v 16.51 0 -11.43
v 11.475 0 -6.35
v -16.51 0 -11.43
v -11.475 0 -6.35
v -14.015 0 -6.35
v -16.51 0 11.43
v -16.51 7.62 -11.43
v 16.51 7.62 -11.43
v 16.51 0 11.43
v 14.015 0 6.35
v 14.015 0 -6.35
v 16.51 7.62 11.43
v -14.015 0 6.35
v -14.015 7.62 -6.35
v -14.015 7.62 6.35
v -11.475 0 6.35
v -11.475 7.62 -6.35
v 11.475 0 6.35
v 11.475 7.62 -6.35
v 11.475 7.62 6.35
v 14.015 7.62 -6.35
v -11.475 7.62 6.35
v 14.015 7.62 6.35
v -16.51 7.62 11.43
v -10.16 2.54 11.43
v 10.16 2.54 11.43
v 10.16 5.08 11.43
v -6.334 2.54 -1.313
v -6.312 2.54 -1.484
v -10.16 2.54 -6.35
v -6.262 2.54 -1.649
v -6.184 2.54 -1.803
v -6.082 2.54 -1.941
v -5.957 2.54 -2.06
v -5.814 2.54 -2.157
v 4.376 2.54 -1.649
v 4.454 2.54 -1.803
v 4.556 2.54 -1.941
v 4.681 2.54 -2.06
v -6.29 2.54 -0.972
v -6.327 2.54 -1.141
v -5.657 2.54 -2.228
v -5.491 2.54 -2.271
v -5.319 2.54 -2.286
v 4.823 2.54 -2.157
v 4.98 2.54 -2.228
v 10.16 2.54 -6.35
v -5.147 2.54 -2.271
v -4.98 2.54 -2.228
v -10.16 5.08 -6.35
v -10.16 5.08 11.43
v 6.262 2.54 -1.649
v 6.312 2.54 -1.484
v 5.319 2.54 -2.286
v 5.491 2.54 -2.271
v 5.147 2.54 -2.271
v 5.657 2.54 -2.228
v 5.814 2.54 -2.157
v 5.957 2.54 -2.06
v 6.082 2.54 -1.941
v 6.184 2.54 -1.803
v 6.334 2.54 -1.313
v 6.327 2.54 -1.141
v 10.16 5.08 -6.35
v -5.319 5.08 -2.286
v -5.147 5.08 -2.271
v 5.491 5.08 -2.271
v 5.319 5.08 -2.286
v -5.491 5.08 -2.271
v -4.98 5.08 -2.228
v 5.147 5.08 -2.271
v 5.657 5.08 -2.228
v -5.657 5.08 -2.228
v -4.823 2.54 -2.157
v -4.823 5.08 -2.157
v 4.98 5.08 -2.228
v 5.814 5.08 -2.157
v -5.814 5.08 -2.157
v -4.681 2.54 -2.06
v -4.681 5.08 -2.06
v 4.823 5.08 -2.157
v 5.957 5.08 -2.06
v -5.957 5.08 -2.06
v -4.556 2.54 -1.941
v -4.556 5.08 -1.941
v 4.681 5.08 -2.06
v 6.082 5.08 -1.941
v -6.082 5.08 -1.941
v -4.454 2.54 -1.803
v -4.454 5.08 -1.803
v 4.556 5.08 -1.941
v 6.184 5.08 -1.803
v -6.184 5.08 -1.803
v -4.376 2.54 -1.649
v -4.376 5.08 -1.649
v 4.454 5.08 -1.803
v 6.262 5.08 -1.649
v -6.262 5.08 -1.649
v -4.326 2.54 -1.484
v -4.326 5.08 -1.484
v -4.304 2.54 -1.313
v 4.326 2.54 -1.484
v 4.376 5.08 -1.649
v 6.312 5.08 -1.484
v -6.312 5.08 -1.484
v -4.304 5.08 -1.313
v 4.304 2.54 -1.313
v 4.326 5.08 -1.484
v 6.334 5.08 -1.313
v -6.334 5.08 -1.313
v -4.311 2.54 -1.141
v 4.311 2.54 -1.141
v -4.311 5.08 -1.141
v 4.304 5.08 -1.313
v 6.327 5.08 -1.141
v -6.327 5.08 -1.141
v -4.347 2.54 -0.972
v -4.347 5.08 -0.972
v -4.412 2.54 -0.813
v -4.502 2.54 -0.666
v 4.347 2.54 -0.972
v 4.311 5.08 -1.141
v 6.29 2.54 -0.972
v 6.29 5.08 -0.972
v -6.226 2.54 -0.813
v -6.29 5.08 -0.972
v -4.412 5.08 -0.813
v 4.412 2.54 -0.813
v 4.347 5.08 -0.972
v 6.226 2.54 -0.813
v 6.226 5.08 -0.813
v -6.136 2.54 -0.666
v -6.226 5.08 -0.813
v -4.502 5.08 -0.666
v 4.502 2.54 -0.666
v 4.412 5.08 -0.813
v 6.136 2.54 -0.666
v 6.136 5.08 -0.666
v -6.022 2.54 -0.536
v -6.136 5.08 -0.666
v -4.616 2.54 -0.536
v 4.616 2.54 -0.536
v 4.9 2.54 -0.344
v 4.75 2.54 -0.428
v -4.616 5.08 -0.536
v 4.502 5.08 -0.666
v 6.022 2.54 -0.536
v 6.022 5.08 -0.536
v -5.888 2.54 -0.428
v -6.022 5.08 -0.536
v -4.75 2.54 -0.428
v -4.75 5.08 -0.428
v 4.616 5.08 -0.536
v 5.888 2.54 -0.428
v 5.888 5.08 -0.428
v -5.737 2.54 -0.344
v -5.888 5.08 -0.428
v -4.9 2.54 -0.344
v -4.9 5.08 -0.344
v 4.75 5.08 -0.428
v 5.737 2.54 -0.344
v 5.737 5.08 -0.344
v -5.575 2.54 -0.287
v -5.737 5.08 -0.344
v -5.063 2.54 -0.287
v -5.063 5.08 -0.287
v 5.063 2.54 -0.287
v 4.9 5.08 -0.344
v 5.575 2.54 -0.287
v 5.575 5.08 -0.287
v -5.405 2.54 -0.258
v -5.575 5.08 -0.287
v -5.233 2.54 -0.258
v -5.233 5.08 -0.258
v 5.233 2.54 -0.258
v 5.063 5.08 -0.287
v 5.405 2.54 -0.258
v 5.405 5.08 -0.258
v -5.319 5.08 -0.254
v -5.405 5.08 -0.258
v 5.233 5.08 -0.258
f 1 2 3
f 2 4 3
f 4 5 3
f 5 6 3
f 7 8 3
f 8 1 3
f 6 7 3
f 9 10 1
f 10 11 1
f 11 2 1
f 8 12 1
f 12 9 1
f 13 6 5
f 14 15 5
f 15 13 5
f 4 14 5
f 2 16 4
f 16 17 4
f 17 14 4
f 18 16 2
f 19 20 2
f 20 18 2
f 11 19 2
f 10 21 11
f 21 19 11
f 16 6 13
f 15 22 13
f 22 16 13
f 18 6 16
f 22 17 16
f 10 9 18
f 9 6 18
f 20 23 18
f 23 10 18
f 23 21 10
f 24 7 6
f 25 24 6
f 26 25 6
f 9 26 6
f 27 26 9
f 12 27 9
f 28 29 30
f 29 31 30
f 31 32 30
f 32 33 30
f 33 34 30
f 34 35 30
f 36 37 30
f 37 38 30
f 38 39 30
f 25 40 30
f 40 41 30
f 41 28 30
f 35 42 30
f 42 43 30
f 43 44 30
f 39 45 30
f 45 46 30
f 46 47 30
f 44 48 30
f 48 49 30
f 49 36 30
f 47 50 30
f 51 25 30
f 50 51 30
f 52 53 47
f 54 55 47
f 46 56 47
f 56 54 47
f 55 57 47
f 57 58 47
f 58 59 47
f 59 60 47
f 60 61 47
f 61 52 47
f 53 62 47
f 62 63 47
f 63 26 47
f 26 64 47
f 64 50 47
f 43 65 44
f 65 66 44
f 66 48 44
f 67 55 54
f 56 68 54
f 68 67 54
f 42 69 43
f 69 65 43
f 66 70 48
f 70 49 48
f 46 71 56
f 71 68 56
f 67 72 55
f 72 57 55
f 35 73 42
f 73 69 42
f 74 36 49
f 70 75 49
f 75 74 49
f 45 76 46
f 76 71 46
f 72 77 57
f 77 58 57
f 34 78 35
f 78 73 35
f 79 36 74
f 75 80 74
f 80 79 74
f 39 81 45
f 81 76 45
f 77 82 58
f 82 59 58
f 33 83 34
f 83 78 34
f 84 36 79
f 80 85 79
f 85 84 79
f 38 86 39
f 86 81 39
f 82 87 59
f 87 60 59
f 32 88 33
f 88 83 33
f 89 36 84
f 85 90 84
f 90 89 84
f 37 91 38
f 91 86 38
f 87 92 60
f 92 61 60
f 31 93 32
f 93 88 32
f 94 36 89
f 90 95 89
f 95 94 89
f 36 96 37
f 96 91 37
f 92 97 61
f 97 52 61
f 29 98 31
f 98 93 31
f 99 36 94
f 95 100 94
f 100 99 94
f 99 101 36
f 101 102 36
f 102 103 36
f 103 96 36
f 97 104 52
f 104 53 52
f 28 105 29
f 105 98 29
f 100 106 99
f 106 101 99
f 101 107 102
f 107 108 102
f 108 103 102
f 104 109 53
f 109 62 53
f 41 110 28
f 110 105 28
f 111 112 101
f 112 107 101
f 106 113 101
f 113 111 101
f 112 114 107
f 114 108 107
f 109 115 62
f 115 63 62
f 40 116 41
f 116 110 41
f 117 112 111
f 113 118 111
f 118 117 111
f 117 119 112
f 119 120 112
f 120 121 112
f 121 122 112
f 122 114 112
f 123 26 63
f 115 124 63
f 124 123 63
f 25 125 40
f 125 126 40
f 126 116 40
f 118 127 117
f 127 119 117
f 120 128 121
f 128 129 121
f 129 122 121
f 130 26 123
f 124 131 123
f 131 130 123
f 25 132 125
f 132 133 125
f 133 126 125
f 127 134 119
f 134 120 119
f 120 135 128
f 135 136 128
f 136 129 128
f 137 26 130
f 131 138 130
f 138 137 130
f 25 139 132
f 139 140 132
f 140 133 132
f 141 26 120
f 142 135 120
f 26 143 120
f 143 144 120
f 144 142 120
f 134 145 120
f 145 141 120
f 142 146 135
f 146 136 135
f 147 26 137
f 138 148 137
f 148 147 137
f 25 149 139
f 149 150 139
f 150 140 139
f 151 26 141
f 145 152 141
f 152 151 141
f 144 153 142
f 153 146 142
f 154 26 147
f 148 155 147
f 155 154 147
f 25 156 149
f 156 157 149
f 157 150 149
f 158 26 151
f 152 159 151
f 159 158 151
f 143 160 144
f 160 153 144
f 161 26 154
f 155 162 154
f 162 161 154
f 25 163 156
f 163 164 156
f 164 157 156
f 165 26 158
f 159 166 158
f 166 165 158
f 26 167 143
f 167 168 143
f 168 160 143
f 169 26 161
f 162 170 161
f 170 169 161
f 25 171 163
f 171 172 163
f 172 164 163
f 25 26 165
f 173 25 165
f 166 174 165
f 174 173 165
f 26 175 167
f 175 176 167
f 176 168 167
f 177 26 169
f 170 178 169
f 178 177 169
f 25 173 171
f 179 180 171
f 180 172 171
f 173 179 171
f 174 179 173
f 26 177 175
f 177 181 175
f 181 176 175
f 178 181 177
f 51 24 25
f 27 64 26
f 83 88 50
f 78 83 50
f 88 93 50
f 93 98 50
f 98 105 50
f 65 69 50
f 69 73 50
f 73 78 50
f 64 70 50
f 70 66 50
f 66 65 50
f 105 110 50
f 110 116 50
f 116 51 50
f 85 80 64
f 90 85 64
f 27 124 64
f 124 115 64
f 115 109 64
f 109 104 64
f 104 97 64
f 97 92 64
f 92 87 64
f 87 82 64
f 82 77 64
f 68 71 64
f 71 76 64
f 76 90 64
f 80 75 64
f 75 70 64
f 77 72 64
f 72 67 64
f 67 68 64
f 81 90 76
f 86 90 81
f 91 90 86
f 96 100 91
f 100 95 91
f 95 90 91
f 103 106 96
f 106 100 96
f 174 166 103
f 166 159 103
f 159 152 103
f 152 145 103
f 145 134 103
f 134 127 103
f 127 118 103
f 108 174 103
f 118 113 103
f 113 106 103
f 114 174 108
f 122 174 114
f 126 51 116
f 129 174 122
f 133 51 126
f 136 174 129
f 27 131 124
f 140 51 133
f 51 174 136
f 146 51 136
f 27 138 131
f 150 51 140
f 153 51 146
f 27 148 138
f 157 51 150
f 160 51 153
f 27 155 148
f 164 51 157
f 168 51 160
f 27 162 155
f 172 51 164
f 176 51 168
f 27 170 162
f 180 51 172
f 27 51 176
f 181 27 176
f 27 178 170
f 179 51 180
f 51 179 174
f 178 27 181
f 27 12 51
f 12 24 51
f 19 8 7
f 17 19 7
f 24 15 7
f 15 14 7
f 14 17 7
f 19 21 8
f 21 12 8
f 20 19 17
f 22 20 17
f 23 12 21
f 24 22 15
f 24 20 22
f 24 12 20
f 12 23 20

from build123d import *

# Parameters (mm, degrees)
SKETCH1_W           = 33.02
SKETCH1_H           = 22.86
SKETCH1_W_2         = 2.54
SKETCH1_H_2         = 12.7
BOSS_EXTRUDE2_DEPTH = 2.54
SKETCH3_R           = 1.016
BOSS_EXTRUDE3_DEPTH = 2.54
SKETCH4_W           = 33.02
SKETCH4_H           = 22.86
SKETCH4_W_2         = 2.54
SKETCH4_H_2         = 12.7
BOSS_EXTRUDE6_DEPTH = 2.54
SKETCH5_W           = 2.54
SKETCH5_H           = 12.7
BOSS_EXTRUDE7_DEPTH = 2.54


with BuildPart() as part:
    # Sketch1 → Boss-Extrude2 (new body)
    with BuildSketch(Plane(origin=(0, 0, 0), x_dir=(1, 0, 0), z_dir=(0, 1, 0))):
        Rectangle(SKETCH1_W, SKETCH1_H)
        with Locations((-12.74489899, 0)):
            Rectangle(SKETCH1_W_2, SKETCH1_H_2, mode=Mode.SUBTRACT)
        with Locations((12.74489899, 0)):
            Rectangle(SKETCH1_W_2, SKETCH1_H_2, mode=Mode.SUBTRACT)
    extrude(amount=BOSS_EXTRUDE2_DEPTH)

    # Sketch3 → Boss-Extrude3 (add)
    with BuildSketch(Plane(origin=(0, 2.54, 0), x_dir=(1, 0, 0), z_dir=(0, 1, 0))):
        with Locations(Location((-5.318941048, 1.27, 0), (0, 0, 90))):
            Circle(SKETCH3_R)
        with Locations(Location((5.318941048, 1.27, 0), (0, 0, 90))):
            Circle(SKETCH3_R)
    extrude(amount=BOSS_EXTRUDE3_DEPTH)

    # Sketch4 → Boss-Extrude6 (add)
    with BuildSketch(Plane(origin=(0, 5.08, 0), x_dir=(1, 0, 0), z_dir=(0, 1, 0))):
        Rectangle(SKETCH4_W, SKETCH4_H)
        with Locations((-12.74489899, 0)):
            Rectangle(SKETCH4_W_2, SKETCH4_H_2, mode=Mode.SUBTRACT)
        with Locations((12.74489899, 0)):
            Rectangle(SKETCH4_W_2, SKETCH4_H_2, mode=Mode.SUBTRACT)
    extrude(amount=BOSS_EXTRUDE6_DEPTH)

    # Sketch5 → Boss-Extrude7 (add)
    with BuildSketch(Plane(origin=(0, 2.54, 0), x_dir=(1, 0, 0), z_dir=(0, 1, 0))):
        Polygon((-16.51, -11.43), (-16.51, 11.43), (16.51, 11.43), (16.51, -11.43), (10.16, -11.43), (10.16, 6.35), (-10.16, 6.35), (-10.16, -11.43), align=None)
        with Locations((-12.74489899, 0)):
            Rectangle(SKETCH5_W, SKETCH5_H, mode=Mode.SUBTRACT)
        with Locations((12.74489899, 0)):
            Rectangle(SKETCH5_W, SKETCH5_H, mode=Mode.SUBTRACT)
    extrude(amount=BOSS_EXTRUDE7_DEPTH)


solid = part.part
